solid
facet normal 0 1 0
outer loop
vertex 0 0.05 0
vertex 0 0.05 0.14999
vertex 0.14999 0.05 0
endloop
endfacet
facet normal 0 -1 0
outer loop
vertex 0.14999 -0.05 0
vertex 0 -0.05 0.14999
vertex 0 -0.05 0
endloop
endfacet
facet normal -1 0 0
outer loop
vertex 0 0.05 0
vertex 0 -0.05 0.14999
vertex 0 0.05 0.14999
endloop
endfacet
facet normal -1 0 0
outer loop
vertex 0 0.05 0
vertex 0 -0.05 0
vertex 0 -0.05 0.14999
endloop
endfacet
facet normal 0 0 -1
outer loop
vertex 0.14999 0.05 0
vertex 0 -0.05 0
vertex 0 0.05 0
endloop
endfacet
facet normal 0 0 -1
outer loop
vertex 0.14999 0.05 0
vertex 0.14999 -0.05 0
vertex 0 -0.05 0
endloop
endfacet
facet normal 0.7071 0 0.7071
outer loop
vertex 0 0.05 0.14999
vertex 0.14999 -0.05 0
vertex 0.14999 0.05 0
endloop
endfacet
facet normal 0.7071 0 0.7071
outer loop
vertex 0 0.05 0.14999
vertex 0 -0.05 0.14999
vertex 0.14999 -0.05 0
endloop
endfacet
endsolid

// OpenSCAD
rotate(a=[90,0,0])
linear_extrude(height = 0.1, center = true, convexity = 10, twist = 0)
    polygon(points=[[0,0],[0.15,0],[0,0.15]]);
